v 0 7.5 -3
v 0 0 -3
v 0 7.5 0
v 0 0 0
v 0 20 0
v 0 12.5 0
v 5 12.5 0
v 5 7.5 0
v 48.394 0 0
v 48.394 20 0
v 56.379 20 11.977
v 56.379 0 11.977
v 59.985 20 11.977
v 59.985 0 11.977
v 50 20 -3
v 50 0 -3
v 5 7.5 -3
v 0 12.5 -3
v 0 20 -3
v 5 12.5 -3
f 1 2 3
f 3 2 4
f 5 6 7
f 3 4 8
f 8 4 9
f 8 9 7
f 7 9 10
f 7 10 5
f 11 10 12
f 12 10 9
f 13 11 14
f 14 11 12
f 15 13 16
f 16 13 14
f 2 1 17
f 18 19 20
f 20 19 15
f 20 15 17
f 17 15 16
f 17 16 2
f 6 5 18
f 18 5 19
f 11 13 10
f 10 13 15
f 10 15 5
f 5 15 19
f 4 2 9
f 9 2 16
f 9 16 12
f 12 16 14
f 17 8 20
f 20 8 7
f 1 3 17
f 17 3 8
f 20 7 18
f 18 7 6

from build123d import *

# Parameters (mm, degrees)
BOSS_EXTRUDE1_DEPTH = 20
SKETCH2_W           = 5
SKETCH2_H           = 5
CUT_EXTRUDE1_DEPTH  = 10


with BuildPart() as part:
    # Sketch1 → Boss-Extrude1 (new body)
    with BuildSketch(Plane(origin=(0, 0, 0), x_dir=(1, 0, 0), z_dir=(0, 1, 0))):
        Polygon((0, 0), (0, 3), (50, 3), (59.984585881, -11.976917065), (56.379037438, -11.976917065), (48.39444645, 0), align=None)
    extrude(amount=BOSS_EXTRUDE1_DEPTH)

    # Sketch2 → Cut-Extrude1 (cut)
    with BuildSketch(Plane(origin=(0, 0, -3), x_dir=(-1, 0, 0), z_dir=(0, 0, -1))):
        with Locations((-2.5, 10)):
            Rectangle(SKETCH2_W, SKETCH2_H)
    extrude(amount=-CUT_EXTRUDE1_DEPTH, mode=Mode.SUBTRACT)


solid = part.part
